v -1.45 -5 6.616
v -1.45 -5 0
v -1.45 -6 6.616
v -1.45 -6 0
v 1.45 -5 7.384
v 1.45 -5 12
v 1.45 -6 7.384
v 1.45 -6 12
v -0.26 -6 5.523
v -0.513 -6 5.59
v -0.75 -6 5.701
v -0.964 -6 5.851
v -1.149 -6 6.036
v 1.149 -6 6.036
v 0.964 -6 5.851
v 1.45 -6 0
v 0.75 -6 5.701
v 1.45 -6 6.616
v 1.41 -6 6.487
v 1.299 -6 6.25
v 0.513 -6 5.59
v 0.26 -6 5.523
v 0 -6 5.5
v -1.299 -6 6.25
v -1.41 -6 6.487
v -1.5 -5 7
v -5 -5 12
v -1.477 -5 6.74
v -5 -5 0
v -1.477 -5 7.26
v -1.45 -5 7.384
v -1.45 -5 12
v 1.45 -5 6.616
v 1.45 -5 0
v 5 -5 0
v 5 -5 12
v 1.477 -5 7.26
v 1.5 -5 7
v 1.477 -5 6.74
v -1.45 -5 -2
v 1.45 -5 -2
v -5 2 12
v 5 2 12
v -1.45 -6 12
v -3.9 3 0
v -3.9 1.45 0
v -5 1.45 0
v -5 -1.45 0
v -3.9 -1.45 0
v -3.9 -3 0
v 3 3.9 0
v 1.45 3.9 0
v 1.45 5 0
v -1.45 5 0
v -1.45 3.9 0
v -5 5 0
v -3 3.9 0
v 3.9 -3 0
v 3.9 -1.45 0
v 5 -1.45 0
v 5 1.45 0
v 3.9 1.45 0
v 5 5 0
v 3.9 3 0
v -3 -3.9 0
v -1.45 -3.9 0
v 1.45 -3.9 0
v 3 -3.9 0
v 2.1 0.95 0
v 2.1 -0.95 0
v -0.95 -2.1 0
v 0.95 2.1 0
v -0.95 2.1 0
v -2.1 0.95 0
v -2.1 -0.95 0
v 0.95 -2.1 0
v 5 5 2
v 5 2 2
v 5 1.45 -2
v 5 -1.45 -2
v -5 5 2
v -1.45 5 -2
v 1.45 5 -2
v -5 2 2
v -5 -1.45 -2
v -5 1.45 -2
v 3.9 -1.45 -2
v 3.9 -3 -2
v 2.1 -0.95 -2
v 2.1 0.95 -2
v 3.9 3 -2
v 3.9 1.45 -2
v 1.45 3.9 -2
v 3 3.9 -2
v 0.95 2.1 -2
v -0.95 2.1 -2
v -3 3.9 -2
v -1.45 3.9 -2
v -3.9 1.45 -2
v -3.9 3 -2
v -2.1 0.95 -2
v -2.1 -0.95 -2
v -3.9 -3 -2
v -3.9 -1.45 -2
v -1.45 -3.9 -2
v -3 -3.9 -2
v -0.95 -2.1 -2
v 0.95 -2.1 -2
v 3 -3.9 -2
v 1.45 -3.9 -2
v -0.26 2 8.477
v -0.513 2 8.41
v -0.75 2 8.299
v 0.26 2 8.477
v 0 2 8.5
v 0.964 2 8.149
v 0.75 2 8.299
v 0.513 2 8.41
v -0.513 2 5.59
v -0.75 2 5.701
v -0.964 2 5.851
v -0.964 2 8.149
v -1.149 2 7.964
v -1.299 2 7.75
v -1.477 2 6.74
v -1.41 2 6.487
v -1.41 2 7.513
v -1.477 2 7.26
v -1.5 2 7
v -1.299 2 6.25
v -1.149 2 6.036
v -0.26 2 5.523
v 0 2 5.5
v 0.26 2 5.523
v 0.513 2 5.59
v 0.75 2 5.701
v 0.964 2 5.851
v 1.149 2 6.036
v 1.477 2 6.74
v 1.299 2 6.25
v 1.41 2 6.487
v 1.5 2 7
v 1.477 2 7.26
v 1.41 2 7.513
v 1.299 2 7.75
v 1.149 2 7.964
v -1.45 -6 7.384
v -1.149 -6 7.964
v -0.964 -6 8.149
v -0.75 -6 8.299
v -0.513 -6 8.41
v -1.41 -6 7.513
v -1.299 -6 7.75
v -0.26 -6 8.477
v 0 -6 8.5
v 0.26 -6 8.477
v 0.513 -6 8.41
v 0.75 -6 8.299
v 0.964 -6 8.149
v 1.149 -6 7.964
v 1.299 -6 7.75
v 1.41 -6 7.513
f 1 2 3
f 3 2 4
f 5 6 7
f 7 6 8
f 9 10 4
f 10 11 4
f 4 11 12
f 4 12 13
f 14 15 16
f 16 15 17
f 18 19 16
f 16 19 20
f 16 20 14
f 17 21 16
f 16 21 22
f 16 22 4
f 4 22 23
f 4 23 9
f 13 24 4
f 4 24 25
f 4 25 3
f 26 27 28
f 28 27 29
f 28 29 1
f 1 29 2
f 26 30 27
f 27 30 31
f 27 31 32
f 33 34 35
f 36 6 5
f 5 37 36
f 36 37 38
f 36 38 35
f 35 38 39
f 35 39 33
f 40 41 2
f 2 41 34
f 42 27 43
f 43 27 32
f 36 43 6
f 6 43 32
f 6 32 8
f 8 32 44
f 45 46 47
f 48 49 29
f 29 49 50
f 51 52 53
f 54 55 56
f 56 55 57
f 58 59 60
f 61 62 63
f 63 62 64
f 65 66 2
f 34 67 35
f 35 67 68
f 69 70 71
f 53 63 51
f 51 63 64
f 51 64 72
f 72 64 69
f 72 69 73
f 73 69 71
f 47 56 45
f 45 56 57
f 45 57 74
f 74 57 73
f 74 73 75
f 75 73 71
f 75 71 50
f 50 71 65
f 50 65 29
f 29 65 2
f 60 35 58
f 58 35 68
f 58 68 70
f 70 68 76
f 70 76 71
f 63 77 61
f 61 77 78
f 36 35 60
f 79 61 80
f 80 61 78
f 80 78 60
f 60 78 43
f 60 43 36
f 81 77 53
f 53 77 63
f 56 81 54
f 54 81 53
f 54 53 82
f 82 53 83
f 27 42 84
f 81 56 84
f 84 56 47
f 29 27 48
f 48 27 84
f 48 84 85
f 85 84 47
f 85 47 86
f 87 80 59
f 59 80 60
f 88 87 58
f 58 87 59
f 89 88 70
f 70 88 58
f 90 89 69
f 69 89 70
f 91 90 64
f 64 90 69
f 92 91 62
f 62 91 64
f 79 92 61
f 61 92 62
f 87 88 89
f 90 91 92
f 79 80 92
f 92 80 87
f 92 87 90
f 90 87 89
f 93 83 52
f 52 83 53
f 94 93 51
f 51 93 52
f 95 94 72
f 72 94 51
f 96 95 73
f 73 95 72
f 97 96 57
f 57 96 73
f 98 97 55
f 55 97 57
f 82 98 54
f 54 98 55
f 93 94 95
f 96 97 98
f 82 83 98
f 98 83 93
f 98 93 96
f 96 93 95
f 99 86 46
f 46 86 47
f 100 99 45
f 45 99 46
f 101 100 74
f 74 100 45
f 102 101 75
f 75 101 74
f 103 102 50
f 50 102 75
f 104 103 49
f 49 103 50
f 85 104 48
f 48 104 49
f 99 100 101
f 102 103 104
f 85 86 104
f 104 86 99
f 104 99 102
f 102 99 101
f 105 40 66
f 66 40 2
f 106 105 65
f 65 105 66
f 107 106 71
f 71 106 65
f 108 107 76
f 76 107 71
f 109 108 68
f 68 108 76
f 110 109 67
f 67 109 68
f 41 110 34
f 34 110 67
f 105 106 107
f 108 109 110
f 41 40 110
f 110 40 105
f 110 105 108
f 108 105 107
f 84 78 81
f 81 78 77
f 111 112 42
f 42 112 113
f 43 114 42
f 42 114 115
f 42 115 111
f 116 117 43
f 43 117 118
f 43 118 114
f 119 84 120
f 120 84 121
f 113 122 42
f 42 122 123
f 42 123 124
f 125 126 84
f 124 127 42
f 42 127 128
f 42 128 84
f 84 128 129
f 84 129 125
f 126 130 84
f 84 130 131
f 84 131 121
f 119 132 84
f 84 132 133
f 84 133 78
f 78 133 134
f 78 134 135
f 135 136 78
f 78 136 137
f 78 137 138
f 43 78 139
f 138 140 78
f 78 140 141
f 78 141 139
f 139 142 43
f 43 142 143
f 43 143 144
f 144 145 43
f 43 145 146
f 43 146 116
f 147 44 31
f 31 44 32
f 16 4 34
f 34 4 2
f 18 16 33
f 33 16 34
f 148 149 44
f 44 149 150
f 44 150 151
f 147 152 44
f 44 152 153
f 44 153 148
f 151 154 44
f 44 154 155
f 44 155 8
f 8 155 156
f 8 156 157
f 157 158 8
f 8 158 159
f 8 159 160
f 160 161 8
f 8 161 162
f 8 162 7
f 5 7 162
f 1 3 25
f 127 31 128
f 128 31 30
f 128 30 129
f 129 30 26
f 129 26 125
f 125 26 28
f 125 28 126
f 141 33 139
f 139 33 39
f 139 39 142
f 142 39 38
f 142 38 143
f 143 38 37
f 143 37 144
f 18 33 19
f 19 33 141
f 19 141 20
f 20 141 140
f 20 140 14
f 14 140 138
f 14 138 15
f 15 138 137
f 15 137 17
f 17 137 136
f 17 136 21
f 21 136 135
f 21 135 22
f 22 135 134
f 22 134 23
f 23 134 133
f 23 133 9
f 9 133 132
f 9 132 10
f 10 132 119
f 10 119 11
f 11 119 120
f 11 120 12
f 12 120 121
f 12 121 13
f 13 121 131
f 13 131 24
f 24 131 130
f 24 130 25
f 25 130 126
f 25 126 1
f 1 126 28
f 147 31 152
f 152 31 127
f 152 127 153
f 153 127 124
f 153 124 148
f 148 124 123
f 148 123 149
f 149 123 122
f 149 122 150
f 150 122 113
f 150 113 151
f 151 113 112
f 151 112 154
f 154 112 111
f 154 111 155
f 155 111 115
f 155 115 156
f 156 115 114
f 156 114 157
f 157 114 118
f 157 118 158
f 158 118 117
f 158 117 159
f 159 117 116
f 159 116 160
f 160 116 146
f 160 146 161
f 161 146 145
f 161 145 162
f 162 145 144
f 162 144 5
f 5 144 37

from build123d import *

# Parameters (mm, degrees)
SKETCH1_W                         = 10
SKETCH1_H                         = 10
MAIN_DEPTH                        = 12
ANTIROTATIONSYSTEM_DEPTH          = 2
CIRPATTERN1_COUNT                 = 4
SKETCH3_W                         = 10
SKETCH3_H                         = 10
MAKERBEAMSQUAREHOLEFORSCREW_DEPTH = 3
SKETCH5_W                         = 2.9
SKETCH5_H                         = 12
MAKERBEAMRAIL_DEPTH               = 1
SKETCH4_R                         = 1.5
VERTICALMAKERBEAMHOLE_DEPTH       = 16.264337522


with BuildPart() as part:
    # Sketch1 → Main (new body)
    with BuildSketch(Plane.XY):
        Rectangle(SKETCH1_W, SKETCH1_H)
    extrude(amount=MAIN_DEPTH)

    # Sketch2 → AntiRotationSystem (add)
    with BuildSketch(Plane(origin=(0, 0, 0), x_dir=(-1, 0, 0), z_dir=(0, 0, -1))):
        Polygon((-5, 1.45), (-3.9, 1.45), (-3.9, 3), (-2.1, 0.95), (-2.1, -0.95), (-3.9, -3), (-3.9, -1.45), (-5, -1.45), align=None)
    antirotationsystem = extrude(amount=ANTIROTATIONSYSTEM_DEPTH)

    # CirPattern1: AntiRotationSystem ×4 about axis
    cirpattern1_axis = Axis((0, 0, -1.2), (0, 0, 1))
    for i in range(1, CIRPATTERN1_COUNT):
        add(antirotationsystem.rotate(cirpattern1_axis, i * 360 / CIRPATTERN1_COUNT))

    # Sketch3 → MakerBeamSquareHoleForScrew (cut)
    with BuildSketch(Plane(origin=(0, 5, 0), x_dir=(1, 0, 0), z_dir=(0, 1, 0))):
        with Locations((0, -7)):
            Rectangle(SKETCH3_W, SKETCH3_H)
    extrude(amount=-MAKERBEAMSQUAREHOLEFORSCREW_DEPTH, mode=Mode.SUBTRACT)

    # Sketch5 → MakerBeamRail (add)
    with BuildSketch(Plane(origin=(0, -5, 0), x_dir=(-1, 0, 0), z_dir=(0, -1, 0))):
        with Locations((0, -6)):
            Rectangle(SKETCH5_W, SKETCH5_H)
    extrude(amount=MAKERBEAMRAIL_DEPTH)

    # Sketch4 → VerticalMakerBeamHole (cut, through all)
    with BuildSketch(Plane(origin=(0, 2, 0), x_dir=(1, 0, 0), z_dir=(0, 1, 0))):
        with Locations((0, -7)):
            Circle(SKETCH4_R)
    extrude(amount=-VERTICALMAKERBEAMHOLE_DEPTH, mode=Mode.SUBTRACT)


solid = part.part
